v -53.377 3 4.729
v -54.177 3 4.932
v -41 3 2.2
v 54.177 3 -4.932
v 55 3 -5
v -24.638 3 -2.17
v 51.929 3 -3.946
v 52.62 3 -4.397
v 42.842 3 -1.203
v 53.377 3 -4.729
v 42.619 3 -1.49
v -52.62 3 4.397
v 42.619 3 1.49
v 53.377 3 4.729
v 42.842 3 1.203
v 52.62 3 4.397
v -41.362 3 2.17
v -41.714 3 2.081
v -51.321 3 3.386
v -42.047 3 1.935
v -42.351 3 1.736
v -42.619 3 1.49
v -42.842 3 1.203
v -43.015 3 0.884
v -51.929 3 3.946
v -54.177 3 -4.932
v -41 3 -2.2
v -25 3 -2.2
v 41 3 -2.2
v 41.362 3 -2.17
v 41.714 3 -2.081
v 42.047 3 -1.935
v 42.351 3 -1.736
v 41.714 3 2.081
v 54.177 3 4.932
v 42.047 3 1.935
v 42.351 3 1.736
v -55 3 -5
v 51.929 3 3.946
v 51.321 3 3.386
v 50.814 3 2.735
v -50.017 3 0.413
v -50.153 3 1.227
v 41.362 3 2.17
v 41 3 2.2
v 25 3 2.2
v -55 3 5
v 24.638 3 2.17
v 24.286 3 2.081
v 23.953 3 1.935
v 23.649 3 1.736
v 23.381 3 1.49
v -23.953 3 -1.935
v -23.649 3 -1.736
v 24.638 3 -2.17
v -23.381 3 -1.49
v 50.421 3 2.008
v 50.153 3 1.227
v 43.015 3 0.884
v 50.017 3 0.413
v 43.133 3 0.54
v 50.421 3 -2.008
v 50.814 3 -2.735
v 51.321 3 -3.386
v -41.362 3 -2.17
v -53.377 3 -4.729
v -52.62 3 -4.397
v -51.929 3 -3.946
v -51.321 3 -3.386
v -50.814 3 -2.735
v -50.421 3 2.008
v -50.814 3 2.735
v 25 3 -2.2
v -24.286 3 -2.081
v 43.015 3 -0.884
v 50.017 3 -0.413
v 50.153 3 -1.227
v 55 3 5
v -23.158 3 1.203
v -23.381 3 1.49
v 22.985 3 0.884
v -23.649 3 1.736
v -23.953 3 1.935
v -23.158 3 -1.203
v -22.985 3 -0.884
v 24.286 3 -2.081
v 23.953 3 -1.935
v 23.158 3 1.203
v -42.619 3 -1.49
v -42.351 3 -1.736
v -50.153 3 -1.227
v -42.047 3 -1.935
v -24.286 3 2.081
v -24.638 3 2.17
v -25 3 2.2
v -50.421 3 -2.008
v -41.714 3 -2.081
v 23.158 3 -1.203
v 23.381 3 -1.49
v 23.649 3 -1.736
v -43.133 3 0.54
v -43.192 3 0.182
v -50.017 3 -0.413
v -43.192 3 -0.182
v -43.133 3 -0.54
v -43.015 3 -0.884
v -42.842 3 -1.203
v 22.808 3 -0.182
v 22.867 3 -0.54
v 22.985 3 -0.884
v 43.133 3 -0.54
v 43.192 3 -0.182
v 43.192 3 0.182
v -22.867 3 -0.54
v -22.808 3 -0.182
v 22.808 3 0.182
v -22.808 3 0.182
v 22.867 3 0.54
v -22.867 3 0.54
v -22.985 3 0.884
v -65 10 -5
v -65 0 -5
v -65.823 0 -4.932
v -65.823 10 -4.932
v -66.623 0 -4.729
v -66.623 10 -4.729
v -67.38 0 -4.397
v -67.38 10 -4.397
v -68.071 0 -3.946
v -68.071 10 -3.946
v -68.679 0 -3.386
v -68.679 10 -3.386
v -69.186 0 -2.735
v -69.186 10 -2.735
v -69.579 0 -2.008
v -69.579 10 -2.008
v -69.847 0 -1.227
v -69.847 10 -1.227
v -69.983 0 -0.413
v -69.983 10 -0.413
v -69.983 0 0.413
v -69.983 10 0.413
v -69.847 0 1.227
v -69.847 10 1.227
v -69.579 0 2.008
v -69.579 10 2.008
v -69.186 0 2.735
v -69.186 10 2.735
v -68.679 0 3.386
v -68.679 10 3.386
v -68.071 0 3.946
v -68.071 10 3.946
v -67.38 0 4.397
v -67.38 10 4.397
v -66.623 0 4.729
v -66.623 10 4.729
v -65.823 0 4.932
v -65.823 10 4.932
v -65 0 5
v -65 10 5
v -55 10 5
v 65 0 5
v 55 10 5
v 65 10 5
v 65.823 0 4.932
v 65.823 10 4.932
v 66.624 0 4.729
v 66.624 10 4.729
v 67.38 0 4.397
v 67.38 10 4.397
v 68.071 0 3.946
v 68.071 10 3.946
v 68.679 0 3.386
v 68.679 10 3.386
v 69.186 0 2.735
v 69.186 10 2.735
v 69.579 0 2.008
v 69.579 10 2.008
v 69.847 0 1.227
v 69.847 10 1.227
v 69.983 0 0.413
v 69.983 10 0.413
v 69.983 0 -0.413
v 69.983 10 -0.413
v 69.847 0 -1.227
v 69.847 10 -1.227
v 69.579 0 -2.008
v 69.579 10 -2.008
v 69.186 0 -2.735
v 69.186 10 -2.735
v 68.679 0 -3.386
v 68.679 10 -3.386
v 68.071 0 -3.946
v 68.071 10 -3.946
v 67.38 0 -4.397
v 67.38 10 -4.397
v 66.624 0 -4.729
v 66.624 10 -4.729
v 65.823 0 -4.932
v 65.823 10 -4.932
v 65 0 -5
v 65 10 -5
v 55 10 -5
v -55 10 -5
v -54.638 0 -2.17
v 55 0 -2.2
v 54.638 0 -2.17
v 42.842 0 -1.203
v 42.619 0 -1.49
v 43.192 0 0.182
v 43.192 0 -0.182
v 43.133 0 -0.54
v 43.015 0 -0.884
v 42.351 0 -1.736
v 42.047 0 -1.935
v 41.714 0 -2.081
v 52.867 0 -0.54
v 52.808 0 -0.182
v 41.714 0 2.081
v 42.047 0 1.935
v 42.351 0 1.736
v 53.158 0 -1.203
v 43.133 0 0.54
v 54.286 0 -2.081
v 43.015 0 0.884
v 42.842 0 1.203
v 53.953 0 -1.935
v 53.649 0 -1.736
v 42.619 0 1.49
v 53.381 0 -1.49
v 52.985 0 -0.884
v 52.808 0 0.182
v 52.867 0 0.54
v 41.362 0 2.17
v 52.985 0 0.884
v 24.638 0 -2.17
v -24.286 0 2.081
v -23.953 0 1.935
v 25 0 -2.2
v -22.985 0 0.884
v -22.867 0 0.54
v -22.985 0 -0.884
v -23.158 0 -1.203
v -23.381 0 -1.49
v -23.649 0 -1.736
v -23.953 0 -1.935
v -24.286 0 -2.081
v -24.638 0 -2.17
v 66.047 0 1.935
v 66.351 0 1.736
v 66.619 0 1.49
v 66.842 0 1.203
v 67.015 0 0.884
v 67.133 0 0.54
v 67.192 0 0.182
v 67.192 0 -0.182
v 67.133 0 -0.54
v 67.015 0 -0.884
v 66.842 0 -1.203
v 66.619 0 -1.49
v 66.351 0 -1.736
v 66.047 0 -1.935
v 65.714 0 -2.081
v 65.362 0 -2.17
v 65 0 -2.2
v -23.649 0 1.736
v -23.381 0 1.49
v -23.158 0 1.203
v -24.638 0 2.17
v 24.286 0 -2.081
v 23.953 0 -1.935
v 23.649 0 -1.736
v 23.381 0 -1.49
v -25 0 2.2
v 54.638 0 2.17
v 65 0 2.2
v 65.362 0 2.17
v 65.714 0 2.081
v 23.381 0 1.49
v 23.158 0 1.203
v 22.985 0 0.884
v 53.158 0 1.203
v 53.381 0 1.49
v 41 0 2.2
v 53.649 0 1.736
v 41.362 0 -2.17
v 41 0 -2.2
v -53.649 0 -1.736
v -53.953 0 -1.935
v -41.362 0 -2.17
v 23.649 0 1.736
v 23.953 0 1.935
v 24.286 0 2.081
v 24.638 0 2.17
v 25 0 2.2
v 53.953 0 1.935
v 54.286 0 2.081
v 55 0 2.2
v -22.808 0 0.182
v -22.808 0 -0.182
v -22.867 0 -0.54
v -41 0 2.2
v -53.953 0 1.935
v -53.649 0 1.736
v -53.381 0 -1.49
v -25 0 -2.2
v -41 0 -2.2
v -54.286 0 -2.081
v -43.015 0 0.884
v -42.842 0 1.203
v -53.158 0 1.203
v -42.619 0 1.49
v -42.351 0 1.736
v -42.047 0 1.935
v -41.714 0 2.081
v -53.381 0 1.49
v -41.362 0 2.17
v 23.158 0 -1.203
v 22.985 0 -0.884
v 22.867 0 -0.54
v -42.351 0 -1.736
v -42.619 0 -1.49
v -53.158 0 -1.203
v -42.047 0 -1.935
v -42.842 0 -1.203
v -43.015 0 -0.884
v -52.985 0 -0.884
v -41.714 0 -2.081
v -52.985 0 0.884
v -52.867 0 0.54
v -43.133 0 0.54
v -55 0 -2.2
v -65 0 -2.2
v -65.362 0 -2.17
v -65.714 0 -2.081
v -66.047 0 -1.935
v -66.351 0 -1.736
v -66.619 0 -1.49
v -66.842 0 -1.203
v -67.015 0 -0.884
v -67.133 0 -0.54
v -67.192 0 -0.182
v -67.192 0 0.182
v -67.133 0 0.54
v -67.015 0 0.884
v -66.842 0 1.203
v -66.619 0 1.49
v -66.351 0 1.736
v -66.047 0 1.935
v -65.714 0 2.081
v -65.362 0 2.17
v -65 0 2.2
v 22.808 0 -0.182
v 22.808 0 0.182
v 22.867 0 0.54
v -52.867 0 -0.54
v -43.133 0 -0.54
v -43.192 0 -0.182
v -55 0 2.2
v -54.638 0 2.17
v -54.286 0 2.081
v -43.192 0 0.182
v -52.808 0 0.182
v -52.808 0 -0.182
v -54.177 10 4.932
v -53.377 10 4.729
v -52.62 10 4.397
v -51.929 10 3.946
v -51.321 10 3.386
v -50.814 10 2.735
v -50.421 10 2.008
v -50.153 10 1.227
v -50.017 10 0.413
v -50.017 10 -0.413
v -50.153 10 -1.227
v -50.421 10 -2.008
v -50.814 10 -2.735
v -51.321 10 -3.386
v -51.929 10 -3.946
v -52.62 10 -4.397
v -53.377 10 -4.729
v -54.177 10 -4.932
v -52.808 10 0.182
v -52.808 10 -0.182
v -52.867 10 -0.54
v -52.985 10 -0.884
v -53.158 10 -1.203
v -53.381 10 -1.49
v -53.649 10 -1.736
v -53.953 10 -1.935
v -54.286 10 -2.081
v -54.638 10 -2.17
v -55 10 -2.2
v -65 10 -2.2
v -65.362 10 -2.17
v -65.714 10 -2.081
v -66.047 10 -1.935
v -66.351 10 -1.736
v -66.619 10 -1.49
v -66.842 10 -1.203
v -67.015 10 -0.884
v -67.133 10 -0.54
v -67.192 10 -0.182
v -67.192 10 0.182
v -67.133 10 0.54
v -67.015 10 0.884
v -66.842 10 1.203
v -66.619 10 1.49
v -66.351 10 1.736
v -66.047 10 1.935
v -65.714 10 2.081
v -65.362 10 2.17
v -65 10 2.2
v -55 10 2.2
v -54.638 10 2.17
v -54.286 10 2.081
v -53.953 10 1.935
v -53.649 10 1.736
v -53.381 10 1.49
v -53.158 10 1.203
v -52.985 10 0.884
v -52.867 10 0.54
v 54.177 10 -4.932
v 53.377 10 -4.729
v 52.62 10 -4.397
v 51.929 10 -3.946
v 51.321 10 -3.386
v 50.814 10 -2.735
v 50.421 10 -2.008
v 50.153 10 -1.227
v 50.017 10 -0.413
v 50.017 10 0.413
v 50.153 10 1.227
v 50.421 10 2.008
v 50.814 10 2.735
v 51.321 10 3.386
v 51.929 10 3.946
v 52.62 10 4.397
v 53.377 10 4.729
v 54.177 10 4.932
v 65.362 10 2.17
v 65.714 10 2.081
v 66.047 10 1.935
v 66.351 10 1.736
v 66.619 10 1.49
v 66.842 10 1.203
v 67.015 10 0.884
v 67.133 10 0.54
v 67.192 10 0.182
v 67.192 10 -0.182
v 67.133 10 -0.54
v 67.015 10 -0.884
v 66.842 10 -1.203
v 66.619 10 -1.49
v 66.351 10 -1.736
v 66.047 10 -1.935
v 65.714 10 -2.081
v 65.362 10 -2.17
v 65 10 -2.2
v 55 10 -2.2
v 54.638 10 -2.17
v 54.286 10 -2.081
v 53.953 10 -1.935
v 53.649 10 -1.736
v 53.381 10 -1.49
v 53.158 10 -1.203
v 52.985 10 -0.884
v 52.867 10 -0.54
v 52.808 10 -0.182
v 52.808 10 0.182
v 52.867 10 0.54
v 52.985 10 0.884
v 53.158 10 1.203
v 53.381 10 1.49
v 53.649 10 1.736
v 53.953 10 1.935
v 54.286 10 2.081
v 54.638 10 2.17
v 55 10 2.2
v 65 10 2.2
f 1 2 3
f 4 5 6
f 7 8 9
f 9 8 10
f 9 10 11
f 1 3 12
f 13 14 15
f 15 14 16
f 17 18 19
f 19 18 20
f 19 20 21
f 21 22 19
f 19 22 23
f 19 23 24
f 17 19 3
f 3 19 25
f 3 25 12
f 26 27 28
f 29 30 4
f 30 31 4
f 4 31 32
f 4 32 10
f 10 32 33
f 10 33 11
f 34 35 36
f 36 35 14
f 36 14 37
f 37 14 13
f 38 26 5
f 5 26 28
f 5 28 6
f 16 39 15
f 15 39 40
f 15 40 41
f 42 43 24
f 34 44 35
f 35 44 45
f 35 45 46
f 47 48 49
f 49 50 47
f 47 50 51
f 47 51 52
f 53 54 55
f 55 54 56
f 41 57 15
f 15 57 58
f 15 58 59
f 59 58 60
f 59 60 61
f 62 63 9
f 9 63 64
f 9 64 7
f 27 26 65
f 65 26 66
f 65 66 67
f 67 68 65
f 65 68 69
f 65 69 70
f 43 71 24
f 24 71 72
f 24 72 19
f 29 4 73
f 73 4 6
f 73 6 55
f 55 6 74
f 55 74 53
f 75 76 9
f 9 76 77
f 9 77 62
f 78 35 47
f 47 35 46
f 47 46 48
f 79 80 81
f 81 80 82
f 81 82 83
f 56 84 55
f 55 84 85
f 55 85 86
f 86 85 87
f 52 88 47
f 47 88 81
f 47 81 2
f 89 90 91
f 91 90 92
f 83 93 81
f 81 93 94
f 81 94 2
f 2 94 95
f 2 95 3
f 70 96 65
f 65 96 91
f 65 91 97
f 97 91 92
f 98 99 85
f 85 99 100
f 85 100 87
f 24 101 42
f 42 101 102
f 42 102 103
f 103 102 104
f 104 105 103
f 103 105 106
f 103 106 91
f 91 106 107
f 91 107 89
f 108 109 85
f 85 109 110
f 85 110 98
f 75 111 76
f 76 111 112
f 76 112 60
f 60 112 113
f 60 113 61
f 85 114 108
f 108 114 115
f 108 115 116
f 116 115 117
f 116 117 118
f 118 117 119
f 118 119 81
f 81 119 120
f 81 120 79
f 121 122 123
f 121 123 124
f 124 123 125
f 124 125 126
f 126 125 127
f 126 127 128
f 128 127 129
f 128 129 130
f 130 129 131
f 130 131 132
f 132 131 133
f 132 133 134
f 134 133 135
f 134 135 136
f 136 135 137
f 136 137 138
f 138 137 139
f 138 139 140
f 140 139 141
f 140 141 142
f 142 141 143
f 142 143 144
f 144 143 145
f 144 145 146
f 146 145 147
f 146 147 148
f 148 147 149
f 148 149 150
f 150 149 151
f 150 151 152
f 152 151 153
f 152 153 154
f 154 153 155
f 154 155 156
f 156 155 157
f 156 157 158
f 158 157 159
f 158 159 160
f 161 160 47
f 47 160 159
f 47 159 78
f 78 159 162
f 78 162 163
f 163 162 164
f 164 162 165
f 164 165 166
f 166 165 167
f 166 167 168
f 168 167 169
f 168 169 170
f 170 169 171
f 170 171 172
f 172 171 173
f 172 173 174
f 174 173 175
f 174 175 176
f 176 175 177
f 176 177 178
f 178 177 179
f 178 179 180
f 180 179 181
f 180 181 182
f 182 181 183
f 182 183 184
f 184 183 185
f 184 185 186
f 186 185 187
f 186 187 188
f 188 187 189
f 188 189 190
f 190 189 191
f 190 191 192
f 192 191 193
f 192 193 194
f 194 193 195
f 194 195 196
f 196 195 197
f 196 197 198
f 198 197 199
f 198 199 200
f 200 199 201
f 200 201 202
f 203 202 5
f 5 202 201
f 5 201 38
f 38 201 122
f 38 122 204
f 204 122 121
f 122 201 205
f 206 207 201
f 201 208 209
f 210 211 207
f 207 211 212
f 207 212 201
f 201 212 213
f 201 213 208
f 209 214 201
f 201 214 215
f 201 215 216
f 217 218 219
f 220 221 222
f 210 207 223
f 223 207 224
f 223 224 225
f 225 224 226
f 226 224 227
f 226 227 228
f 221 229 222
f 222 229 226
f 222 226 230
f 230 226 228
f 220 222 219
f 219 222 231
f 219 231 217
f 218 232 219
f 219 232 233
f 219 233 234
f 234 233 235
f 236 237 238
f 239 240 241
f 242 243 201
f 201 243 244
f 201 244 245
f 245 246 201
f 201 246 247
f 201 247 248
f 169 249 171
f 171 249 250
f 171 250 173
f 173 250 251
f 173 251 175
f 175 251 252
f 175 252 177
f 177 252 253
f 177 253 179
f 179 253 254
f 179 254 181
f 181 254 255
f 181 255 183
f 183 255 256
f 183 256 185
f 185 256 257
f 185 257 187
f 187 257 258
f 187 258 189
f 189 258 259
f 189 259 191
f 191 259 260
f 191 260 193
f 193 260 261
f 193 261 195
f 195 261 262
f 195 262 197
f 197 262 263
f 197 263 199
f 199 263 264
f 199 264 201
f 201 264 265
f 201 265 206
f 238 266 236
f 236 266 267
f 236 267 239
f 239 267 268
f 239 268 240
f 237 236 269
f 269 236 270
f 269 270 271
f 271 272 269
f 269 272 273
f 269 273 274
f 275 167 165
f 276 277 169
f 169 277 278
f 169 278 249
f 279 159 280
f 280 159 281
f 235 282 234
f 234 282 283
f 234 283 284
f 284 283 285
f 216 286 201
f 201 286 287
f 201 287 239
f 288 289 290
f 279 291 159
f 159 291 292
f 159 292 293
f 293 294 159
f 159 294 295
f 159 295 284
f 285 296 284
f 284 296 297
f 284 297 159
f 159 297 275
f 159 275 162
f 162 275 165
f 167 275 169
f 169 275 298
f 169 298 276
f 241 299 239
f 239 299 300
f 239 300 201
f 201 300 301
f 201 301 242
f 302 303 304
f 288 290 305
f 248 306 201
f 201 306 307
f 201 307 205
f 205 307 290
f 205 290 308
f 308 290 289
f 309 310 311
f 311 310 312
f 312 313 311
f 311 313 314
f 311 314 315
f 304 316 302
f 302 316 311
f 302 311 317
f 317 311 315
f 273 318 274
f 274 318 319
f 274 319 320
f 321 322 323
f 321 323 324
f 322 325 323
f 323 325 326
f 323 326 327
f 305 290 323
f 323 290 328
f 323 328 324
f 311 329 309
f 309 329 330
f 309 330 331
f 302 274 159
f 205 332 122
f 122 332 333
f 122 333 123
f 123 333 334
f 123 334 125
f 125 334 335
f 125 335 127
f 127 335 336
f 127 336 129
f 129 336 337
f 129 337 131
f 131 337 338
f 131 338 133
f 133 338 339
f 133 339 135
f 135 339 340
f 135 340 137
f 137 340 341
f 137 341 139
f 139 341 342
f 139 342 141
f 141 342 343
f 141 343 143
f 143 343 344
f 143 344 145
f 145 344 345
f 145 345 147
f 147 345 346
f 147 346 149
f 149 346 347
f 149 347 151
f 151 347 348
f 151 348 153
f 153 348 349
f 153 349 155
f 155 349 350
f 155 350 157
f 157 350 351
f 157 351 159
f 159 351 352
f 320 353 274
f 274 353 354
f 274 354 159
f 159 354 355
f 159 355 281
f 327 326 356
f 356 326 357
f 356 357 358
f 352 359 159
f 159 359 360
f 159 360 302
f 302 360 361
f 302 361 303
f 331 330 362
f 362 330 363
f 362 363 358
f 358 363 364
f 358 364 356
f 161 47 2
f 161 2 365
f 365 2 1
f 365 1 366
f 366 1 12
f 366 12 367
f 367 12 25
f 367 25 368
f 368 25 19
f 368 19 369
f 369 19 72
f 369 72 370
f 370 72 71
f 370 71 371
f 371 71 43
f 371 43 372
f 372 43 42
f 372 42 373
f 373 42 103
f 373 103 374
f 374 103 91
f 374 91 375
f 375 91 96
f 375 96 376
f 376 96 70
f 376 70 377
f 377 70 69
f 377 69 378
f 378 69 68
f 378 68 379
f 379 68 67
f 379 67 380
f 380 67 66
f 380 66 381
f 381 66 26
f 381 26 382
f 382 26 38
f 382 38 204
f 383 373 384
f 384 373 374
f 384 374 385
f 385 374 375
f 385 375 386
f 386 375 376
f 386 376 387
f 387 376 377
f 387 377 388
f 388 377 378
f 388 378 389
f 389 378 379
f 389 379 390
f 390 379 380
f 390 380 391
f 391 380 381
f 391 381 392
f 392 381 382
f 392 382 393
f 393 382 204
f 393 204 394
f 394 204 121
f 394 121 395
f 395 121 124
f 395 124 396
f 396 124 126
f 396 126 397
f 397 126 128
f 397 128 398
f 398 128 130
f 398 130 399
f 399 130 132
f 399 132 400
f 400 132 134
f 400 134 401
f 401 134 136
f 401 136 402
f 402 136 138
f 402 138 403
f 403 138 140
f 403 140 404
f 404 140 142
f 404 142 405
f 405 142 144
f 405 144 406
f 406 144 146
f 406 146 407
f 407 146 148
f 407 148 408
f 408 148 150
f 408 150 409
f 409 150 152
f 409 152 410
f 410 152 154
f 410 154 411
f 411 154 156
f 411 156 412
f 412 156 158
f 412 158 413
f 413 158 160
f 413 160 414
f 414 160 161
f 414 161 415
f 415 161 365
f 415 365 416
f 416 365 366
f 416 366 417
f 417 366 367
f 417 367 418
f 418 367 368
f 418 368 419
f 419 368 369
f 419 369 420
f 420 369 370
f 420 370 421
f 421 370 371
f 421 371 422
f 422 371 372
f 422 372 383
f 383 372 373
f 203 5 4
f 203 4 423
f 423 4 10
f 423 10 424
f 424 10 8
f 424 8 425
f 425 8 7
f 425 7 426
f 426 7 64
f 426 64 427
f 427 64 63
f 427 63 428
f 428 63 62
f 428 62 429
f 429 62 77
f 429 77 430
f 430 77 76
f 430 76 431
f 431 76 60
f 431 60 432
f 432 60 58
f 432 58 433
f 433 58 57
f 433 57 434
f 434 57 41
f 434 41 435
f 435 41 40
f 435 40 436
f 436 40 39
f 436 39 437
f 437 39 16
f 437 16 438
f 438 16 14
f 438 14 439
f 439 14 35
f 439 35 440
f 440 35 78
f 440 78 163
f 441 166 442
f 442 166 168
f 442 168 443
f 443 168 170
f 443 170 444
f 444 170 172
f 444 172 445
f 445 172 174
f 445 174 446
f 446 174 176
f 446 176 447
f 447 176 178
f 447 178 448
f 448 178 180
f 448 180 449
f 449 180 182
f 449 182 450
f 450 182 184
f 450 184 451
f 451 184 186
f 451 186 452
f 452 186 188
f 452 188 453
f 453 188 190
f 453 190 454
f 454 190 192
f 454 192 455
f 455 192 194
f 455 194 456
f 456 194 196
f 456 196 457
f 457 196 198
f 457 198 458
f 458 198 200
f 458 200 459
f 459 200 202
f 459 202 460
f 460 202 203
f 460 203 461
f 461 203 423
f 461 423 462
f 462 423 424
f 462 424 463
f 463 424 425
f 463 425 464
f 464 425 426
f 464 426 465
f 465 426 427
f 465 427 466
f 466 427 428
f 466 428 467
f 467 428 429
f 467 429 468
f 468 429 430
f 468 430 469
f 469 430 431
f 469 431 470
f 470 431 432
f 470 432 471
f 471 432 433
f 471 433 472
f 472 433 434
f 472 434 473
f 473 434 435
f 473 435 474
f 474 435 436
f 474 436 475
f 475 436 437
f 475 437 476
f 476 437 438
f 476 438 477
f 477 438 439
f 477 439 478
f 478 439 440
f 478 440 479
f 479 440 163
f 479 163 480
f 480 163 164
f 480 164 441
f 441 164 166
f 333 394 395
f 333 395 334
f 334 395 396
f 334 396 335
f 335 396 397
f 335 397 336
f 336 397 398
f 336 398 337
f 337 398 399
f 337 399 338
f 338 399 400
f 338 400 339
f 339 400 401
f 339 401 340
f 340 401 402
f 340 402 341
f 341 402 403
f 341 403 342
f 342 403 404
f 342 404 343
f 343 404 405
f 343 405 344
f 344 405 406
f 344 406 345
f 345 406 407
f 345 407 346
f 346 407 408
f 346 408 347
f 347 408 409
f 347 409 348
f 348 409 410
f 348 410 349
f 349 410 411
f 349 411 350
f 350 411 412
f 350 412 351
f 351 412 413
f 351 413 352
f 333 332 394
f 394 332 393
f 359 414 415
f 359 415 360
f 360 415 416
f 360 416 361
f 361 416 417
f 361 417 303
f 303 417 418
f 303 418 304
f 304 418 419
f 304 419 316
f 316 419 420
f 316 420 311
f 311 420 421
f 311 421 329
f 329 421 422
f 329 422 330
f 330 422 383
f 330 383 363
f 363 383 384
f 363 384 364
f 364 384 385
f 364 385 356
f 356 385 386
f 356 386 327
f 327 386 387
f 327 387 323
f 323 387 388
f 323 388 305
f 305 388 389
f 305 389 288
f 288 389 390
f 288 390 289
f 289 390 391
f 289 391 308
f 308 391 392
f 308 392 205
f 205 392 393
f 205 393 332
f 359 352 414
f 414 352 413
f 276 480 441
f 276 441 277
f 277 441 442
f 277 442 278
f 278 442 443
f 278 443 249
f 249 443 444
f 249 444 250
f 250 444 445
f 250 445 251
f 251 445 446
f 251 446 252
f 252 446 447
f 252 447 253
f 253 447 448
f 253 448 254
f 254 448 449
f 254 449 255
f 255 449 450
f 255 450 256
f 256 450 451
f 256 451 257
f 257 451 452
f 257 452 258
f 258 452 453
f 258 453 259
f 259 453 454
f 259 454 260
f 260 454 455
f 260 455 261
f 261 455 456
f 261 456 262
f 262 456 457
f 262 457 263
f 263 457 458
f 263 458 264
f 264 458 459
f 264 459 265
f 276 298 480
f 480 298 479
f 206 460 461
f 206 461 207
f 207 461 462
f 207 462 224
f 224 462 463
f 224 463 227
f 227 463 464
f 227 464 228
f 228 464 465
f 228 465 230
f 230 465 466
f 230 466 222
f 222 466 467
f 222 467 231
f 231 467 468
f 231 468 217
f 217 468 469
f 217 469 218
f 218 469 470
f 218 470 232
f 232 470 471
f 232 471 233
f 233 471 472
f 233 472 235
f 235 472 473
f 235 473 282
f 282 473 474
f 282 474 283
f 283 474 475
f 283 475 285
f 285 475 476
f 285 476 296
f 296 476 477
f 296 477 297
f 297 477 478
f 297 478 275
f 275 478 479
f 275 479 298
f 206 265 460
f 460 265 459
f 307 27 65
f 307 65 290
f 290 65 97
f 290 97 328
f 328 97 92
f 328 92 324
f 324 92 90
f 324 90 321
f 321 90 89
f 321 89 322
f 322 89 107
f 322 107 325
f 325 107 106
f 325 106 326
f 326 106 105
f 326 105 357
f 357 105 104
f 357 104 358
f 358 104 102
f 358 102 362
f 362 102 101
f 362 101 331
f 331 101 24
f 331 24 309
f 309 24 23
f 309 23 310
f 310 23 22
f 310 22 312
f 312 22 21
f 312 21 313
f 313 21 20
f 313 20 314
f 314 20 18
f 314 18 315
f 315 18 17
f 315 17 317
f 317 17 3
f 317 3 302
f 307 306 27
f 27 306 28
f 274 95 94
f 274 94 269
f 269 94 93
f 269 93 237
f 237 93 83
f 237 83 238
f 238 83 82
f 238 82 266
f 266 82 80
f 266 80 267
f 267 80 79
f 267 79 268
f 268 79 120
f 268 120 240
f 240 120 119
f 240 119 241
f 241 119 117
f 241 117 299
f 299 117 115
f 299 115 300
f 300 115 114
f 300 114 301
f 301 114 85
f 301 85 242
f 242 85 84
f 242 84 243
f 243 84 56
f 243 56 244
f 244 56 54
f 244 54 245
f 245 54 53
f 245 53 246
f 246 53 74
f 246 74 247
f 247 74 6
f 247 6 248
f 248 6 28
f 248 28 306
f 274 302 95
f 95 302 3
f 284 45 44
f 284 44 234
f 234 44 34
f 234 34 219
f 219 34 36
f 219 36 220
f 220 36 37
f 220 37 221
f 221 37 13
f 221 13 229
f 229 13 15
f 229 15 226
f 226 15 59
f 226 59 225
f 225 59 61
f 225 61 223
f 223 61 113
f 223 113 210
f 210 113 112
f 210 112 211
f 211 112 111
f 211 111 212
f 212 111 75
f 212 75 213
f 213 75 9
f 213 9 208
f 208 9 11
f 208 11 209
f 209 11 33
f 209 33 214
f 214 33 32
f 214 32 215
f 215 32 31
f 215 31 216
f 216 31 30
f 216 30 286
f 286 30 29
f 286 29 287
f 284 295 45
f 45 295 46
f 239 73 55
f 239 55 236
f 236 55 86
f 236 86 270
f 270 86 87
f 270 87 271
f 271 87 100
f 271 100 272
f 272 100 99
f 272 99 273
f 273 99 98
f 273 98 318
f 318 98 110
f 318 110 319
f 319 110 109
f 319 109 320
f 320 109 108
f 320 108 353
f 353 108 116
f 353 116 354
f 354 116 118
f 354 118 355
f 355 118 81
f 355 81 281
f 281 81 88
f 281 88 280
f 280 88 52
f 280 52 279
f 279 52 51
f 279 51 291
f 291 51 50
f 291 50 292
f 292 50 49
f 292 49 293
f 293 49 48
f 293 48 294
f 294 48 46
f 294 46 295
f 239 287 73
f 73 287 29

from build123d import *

# Parameters (mm, degrees)
EXTRUDE_1_DEPTH     = 3
EXTRUDE_2_DEPTH     = 7
CUT_EXTRUDE_1_DEPTH = 71.887234394
CUT_EXTRUDE_2_DEPTH = 71.52659073


with BuildPart() as part:
    # 草图1 → 凸台-拉伸1 (new body)
    with BuildSketch(Plane(origin=(0, 0, 0), x_dir=(1, 0, 0), z_dir=(0, 1, 0))):
        with BuildLine():
            Line((-65, 5), (65, 5))
            ThreePointArc((65, 5), (70, 0), (65, -5))
            Line((65, -5), (-65, -5))
            ThreePointArc((-65, -5), (-70, 0), (-65, 5))
        make_face()
    extrude(amount=EXTRUDE_1_DEPTH)

    # 草图2 → 凸台-拉伸2 (add)
    with BuildSketch(Plane(origin=(0, 3, 0), x_dir=(1, 0, 0), z_dir=(0, 1, 0))):
        with BuildLine():
            Line((-65, 5), (-55, 5))
            ThreePointArc((-55, 5), (-50, 0), (-55, -5))
            Line((-55, -5), (-65, -5))
            ThreePointArc((-65, -5), (-70, 0), (-65, 5))
        make_face()
        with BuildLine():
            Line((65, 5), (55, 5))
            ThreePointArc((55, 5), (50, 0), (55, -5))
            Line((55, -5), (65, -5))
            ThreePointArc((65, -5), (70, 0), (65, 5))
        make_face()
    extrude(amount=EXTRUDE_2_DEPTH)

    # 草图3 → 切除-拉伸1 (cut, through all)
    with BuildSketch(Plane(origin=(0, 10, 0), x_dir=(1, 0, 0), z_dir=(0, 1, 0))):
        with BuildLine():
            Line((-65, 2.2), (-55, 2.2))
            ThreePointArc((-55, 2.2), (-52.8, 0), (-55, -2.2))
            Line((-55, -2.2), (-65, -2.2))
            ThreePointArc((-65, -2.2), (-67.2, 0), (-65, 2.2))
        make_face()
        with BuildLine():
            Line((65, 2.2), (55, 2.2))
            ThreePointArc((55, 2.2), (52.8, 0), (55, -2.2))
            Line((55, -2.2), (65, -2.2))
            ThreePointArc((65, -2.2), (67.2, 0), (65, 2.2))
        make_face()
    extrude(amount=-CUT_EXTRUDE_1_DEPTH, mode=Mode.SUBTRACT)

    # 草图4 → 切除-拉伸2 (cut, through all)
    with BuildSketch(Plane(origin=(0, 3, 0), x_dir=(1, 0, 0), z_dir=(0, 1, 0))):
        with BuildLine():
            Line((-41, 2.2), (-25, 2.2))
            ThreePointArc((-25, 2.2), (-22.8, 0), (-25, -2.2))
            Line((-25, -2.2), (-41, -2.2))
            ThreePointArc((-41, -2.2), (-43.2, 0), (-41, 2.2))
        make_face()
        with BuildLine():
            Line((41, 2.2), (25, 2.2))
            ThreePointArc((25, 2.2), (22.8, 0), (25, -2.2))
            Line((25, -2.2), (41, -2.2))
            ThreePointArc((41, -2.2), (43.2, 0), (41, 2.2))
        make_face()
    extrude(amount=-CUT_EXTRUDE_2_DEPTH, mode=Mode.SUBTRACT)


solid = part.part
